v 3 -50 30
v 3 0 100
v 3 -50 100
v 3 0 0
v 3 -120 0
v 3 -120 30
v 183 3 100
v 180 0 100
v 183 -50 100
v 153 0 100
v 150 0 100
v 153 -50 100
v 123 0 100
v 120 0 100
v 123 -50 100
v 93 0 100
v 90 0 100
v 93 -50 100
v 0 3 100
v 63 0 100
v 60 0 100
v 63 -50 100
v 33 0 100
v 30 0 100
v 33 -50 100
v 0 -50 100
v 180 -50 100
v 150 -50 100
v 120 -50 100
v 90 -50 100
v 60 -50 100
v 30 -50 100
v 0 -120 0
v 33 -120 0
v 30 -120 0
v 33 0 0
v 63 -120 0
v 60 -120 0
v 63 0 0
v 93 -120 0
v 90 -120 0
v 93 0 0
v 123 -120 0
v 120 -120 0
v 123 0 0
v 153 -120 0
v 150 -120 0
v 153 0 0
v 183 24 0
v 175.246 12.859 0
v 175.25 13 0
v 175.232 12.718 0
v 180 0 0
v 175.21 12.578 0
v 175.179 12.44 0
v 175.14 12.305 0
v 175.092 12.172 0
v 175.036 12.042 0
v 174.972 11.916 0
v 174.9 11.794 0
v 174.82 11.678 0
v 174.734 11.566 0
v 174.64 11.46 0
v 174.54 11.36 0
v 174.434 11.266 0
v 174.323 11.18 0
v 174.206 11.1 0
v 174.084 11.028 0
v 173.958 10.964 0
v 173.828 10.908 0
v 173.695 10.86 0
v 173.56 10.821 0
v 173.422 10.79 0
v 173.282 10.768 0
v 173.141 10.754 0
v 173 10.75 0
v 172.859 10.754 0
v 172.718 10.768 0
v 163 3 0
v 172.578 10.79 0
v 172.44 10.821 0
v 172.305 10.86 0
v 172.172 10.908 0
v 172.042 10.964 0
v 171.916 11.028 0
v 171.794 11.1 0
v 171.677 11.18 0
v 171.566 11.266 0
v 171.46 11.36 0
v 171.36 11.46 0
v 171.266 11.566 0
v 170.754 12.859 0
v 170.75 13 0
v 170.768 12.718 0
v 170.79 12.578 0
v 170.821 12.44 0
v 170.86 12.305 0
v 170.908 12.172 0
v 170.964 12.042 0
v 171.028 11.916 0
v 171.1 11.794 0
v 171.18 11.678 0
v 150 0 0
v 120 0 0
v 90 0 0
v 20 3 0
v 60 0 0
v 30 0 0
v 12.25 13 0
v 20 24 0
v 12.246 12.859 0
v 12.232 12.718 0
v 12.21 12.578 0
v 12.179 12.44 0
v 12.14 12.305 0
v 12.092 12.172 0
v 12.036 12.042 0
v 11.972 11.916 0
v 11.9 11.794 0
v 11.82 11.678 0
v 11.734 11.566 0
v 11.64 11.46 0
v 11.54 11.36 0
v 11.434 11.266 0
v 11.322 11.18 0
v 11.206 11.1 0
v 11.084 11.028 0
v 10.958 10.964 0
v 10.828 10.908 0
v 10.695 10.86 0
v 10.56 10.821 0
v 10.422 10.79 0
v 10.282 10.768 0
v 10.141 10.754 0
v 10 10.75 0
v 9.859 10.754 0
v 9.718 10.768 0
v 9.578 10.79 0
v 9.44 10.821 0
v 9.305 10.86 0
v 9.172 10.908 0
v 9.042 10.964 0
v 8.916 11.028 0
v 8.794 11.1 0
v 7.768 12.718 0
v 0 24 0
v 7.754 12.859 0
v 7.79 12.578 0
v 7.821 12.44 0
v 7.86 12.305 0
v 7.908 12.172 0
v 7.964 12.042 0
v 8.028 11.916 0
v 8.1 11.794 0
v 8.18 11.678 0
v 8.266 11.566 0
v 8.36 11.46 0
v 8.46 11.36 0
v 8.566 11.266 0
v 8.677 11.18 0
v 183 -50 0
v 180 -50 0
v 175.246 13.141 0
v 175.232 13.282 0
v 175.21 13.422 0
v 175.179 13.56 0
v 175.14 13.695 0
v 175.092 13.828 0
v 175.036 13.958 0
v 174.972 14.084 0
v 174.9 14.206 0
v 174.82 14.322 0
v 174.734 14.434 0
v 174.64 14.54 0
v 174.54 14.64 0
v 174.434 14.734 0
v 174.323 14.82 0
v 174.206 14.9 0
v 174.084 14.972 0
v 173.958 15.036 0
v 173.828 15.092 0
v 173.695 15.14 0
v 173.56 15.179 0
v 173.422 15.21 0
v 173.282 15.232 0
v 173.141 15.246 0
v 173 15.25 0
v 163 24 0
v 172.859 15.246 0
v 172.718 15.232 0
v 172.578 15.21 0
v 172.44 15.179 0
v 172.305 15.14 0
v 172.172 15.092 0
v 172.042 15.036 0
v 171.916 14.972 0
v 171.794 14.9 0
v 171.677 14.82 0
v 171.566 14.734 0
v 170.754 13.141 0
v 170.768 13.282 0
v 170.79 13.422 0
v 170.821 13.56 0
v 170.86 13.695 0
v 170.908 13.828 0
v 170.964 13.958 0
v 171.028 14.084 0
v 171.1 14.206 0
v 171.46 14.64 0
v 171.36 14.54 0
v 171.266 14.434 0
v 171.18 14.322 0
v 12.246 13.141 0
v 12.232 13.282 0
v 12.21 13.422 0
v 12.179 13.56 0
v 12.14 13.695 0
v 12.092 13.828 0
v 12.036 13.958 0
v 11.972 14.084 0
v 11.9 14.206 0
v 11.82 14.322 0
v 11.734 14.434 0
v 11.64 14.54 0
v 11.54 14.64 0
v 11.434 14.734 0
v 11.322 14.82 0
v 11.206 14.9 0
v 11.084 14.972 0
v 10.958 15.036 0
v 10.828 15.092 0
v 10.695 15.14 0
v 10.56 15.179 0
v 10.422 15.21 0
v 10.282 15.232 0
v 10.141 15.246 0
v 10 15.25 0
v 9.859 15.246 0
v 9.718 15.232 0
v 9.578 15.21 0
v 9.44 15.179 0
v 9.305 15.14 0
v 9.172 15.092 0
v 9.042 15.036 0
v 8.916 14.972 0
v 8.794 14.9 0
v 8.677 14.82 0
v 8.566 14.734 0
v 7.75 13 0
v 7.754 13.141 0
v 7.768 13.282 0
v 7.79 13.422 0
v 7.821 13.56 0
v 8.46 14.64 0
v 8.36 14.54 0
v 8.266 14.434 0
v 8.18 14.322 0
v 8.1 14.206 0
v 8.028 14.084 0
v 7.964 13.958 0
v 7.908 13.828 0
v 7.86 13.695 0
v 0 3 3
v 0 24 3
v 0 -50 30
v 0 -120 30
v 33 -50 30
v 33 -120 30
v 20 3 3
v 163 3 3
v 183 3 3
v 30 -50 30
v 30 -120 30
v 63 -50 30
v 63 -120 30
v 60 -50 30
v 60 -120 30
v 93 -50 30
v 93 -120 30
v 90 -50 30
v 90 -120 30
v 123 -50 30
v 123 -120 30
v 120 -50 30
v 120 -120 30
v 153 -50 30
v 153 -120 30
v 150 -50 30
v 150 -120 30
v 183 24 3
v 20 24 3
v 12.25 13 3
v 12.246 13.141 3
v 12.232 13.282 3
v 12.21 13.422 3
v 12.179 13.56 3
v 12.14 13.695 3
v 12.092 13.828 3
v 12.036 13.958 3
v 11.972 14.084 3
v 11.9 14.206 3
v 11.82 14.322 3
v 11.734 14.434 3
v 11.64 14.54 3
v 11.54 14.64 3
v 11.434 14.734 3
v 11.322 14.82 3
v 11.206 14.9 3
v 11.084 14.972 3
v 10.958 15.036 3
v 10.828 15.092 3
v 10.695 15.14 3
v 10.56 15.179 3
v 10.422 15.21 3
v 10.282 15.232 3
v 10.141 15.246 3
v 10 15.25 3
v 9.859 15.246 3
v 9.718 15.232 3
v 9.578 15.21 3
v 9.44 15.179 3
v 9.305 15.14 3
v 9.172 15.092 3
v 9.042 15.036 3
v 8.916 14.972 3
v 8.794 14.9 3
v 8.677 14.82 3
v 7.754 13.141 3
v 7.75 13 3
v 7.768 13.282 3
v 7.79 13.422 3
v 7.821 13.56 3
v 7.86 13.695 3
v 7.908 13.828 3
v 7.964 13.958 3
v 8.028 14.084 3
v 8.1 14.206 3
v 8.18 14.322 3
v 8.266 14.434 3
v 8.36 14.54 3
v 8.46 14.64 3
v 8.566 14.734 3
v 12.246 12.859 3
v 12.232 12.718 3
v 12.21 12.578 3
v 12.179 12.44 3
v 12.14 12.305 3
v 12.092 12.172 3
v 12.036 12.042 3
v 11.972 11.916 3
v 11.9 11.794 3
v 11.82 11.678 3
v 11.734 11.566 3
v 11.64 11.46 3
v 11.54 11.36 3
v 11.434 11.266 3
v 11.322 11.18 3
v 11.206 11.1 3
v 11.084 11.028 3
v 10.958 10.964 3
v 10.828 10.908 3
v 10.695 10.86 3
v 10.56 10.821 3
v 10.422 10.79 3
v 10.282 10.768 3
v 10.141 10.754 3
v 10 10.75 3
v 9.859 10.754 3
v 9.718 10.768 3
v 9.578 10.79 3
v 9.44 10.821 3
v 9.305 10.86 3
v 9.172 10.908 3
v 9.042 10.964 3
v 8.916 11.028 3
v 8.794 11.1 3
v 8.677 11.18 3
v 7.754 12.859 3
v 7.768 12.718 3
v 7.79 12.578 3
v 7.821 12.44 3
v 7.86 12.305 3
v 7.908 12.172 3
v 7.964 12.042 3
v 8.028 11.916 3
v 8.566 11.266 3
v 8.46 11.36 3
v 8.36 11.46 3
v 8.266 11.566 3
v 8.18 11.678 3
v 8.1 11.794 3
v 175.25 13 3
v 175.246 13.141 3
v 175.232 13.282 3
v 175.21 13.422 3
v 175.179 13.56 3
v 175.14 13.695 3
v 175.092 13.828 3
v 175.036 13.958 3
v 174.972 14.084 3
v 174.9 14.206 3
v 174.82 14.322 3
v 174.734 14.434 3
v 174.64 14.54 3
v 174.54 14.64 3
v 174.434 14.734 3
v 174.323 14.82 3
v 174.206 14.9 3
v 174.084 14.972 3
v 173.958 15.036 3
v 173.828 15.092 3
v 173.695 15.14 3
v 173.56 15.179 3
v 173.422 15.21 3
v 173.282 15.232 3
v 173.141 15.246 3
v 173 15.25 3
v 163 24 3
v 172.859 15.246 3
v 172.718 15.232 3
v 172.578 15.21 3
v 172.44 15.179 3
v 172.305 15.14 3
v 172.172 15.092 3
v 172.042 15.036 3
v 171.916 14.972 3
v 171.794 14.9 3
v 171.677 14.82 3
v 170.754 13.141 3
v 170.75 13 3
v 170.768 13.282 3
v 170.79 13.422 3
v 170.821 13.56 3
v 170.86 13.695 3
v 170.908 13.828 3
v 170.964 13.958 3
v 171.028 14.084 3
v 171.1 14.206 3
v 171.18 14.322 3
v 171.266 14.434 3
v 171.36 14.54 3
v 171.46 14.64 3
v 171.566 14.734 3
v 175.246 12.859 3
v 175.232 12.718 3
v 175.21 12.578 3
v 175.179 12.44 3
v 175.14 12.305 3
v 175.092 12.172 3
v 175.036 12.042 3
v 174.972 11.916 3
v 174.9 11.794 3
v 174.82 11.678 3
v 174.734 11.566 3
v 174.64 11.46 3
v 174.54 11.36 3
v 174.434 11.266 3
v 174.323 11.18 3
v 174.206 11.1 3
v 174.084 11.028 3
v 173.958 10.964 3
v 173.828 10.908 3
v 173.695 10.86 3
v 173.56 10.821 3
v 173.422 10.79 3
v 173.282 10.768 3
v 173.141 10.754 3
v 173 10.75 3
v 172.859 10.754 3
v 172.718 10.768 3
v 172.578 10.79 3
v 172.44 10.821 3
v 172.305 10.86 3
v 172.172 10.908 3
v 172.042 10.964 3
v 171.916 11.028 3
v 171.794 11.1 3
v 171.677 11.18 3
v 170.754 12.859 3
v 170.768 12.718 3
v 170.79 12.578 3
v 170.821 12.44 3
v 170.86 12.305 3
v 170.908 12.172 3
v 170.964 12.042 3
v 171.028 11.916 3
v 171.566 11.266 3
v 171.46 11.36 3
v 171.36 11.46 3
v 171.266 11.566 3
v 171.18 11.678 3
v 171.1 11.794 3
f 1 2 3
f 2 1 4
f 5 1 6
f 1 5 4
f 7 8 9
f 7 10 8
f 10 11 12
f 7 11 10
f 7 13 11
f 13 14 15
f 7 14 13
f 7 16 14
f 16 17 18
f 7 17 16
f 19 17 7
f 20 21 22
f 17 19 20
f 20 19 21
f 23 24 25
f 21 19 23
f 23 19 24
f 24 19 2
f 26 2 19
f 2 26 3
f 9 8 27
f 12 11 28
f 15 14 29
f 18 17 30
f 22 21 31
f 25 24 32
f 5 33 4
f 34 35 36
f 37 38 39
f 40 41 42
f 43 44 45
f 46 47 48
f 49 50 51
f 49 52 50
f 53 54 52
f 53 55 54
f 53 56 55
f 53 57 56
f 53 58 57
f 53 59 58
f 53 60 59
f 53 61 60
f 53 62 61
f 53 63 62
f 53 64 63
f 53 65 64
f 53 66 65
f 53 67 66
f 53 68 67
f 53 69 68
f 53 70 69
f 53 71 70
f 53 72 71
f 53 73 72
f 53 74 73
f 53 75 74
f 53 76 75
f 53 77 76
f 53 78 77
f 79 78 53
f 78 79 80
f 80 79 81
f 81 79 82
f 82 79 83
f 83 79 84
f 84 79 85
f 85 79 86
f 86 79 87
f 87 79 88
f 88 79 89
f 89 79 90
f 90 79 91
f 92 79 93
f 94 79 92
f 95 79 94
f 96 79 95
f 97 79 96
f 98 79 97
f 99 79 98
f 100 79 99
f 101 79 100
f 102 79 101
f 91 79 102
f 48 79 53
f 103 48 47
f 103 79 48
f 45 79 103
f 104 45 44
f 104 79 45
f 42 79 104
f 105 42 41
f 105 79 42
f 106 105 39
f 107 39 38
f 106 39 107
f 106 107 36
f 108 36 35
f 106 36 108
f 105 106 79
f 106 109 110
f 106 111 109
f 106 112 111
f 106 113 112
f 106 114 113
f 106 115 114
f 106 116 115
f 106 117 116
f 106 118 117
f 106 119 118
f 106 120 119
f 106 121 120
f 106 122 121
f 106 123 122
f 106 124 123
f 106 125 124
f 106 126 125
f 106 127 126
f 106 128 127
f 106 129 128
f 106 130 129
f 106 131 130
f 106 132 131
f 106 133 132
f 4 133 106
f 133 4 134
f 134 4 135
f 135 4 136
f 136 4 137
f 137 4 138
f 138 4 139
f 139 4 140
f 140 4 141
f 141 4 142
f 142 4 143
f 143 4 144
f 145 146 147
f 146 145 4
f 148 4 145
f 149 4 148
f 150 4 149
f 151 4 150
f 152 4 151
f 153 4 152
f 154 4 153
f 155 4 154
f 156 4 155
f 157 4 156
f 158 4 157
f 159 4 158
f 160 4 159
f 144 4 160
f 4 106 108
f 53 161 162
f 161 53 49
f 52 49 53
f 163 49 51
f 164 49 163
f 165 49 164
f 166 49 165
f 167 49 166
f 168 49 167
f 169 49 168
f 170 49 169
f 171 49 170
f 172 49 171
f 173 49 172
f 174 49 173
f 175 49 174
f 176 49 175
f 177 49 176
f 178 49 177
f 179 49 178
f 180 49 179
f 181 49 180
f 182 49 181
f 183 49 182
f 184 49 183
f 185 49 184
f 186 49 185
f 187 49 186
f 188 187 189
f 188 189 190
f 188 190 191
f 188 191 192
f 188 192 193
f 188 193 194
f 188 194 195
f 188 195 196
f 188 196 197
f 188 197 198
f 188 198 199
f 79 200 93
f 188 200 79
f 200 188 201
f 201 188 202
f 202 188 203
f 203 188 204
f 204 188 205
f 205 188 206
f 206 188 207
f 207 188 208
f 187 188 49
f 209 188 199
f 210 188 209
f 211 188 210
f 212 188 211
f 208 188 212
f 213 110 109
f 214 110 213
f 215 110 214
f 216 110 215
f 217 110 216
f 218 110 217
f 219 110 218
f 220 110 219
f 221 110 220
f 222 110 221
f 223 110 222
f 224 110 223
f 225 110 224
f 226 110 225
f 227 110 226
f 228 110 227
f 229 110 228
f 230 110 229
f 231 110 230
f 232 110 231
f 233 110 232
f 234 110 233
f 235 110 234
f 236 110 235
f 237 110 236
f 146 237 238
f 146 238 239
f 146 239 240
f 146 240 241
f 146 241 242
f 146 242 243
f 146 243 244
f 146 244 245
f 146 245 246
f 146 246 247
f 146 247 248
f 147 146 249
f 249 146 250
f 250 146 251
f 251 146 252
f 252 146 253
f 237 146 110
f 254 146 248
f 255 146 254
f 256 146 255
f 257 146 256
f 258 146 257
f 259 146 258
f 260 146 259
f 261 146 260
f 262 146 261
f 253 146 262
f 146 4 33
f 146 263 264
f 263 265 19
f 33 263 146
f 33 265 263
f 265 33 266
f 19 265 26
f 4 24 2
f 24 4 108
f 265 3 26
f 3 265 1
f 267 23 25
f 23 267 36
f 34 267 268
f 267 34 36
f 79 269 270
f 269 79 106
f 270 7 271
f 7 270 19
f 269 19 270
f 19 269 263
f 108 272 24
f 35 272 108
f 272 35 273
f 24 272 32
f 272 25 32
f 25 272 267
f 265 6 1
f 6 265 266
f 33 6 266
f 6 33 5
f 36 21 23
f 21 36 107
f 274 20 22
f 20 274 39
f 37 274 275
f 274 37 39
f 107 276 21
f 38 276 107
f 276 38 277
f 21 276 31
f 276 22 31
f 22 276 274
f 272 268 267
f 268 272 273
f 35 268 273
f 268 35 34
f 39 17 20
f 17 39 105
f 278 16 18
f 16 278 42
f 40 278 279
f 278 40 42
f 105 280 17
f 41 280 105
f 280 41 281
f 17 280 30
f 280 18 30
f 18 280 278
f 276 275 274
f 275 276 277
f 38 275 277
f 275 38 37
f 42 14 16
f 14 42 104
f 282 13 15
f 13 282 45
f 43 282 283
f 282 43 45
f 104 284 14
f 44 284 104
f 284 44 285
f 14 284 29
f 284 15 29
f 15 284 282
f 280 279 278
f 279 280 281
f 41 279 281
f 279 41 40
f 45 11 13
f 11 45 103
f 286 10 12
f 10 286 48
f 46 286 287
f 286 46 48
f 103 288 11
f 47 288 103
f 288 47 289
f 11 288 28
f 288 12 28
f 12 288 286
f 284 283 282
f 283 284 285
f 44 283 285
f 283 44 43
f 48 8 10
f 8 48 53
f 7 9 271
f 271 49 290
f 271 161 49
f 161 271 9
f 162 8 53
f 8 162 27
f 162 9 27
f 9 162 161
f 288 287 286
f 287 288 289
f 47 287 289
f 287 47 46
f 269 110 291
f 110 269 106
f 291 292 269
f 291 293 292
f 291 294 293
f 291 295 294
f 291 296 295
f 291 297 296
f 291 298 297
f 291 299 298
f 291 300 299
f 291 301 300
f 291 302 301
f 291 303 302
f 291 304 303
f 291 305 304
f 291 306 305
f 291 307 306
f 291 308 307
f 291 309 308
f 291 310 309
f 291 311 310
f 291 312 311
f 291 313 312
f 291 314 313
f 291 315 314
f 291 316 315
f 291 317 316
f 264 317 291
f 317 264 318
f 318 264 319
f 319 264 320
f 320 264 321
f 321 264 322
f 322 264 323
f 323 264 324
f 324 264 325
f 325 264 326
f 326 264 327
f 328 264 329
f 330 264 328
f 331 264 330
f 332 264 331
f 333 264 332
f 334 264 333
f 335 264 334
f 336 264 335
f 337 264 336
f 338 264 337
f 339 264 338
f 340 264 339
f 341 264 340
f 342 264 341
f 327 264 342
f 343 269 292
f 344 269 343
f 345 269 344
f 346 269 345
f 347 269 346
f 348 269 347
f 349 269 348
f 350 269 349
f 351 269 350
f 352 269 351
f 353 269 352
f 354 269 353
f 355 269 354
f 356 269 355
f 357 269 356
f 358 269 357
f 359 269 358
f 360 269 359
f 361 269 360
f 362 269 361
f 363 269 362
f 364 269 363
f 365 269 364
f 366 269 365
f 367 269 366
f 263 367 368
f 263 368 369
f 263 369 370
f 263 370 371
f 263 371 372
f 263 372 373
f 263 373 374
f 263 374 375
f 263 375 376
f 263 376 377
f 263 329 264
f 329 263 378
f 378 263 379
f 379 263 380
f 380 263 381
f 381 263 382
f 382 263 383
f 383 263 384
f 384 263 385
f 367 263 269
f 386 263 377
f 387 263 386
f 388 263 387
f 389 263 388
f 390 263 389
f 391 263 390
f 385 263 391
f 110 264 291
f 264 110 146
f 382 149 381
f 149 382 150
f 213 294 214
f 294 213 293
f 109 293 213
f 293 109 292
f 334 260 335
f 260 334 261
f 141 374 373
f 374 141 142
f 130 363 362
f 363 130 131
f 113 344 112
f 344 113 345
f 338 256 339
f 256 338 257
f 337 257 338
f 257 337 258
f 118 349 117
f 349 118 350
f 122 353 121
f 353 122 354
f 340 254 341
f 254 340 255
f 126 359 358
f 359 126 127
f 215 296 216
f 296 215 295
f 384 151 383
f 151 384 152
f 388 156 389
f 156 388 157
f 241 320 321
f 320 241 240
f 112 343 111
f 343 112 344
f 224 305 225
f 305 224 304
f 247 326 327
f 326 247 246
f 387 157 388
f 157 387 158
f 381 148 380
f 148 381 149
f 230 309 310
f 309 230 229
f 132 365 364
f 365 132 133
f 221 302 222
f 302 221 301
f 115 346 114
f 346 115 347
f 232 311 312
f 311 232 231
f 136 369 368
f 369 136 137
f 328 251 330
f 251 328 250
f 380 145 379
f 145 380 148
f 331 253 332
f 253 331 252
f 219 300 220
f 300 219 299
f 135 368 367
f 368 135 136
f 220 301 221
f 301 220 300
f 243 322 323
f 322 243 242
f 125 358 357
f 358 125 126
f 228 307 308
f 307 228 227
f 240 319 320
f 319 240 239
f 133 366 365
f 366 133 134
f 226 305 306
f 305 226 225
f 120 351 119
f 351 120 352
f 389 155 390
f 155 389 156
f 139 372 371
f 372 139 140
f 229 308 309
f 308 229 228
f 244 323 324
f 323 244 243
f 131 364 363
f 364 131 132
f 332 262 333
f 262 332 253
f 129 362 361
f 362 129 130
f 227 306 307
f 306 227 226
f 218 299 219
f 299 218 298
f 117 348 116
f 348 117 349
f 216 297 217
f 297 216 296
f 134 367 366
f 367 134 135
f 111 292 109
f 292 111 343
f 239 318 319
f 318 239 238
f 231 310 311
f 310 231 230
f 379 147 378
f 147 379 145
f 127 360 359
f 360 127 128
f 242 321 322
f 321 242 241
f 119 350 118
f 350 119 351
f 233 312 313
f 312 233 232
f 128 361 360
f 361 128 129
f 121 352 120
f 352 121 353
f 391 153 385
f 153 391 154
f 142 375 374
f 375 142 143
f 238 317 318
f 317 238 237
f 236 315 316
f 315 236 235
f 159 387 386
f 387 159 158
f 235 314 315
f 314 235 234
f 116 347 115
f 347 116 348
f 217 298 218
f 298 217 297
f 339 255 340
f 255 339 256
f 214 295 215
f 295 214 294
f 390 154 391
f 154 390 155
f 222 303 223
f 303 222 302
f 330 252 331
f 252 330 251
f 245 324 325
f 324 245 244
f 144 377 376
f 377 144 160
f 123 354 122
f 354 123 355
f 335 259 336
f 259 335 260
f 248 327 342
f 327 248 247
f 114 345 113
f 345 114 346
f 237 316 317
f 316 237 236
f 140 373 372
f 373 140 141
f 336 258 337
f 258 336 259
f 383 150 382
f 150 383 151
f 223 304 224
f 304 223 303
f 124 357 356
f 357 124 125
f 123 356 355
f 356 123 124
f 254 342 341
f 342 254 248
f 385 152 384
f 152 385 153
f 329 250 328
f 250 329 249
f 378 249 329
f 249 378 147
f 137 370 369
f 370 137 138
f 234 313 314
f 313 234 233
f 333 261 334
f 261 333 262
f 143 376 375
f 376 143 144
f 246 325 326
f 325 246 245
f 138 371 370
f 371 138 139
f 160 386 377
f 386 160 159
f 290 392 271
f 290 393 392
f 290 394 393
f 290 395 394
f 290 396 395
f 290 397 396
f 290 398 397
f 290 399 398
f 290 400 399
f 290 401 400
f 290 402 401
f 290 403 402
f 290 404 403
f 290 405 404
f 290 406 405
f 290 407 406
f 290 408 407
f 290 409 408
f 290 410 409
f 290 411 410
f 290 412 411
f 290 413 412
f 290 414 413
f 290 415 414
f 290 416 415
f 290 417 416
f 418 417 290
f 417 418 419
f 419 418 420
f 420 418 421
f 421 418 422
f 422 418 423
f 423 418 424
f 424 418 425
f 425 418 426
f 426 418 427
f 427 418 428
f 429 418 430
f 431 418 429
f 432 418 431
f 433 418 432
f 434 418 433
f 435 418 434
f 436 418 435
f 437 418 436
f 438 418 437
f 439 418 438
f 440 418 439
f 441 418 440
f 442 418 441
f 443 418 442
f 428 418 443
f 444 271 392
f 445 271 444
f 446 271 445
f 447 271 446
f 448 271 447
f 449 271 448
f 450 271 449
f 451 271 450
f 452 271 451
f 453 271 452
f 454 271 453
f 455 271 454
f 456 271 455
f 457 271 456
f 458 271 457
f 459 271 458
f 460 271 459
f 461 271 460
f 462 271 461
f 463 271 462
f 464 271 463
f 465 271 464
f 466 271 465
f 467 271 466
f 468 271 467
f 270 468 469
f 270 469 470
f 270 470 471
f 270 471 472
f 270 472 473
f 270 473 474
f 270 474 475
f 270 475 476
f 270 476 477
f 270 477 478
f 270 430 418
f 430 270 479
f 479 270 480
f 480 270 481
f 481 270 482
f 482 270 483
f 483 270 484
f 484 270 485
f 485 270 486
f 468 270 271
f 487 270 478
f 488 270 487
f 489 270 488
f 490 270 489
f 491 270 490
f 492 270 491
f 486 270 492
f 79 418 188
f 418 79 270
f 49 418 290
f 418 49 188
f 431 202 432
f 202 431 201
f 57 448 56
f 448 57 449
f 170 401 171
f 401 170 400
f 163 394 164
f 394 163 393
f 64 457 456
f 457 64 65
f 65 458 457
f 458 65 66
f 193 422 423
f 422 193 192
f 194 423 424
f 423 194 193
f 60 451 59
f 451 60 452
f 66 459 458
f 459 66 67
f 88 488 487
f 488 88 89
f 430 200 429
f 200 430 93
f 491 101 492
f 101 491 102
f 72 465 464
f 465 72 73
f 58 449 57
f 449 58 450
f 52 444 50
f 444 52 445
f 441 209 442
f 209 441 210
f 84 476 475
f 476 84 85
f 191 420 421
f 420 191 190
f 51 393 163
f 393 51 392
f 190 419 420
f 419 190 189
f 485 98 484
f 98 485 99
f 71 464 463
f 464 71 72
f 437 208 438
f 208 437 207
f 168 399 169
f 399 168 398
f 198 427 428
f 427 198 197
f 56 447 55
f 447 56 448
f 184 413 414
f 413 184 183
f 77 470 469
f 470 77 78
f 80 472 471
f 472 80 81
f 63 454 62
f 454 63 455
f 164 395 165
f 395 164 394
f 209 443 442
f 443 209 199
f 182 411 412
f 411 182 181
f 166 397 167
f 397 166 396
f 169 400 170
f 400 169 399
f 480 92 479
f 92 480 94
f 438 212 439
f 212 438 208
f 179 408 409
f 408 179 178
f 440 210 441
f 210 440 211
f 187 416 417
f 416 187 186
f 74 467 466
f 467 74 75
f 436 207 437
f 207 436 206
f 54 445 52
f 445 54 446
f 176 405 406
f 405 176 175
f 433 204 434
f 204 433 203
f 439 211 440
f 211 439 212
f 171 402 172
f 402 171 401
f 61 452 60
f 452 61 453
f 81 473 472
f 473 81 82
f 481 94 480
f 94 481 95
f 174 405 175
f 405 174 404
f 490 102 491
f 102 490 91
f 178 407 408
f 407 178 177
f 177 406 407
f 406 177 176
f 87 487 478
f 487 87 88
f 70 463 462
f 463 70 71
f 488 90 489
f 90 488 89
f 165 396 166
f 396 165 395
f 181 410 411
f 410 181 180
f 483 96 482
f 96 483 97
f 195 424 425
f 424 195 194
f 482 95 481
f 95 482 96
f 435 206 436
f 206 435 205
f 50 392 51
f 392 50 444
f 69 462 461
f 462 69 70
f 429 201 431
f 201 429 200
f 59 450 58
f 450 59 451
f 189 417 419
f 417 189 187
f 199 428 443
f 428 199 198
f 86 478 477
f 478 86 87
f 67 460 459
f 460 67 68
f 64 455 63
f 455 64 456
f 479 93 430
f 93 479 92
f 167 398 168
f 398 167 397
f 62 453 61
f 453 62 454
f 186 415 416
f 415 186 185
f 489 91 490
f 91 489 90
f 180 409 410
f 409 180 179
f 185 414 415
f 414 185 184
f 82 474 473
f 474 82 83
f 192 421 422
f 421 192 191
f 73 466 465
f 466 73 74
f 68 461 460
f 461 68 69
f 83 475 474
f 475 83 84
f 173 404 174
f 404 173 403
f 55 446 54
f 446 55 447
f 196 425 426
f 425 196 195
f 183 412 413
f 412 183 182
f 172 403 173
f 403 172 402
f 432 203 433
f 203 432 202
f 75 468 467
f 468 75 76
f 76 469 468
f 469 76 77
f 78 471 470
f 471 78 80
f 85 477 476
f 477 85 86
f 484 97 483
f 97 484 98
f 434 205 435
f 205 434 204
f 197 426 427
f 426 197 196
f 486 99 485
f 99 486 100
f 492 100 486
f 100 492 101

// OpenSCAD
$fn = 100;
delta_x = 30;
wall_thickness = 3;
depth = 100;
height = 50;
number_of_trays = 6;
extra_label_height = 70;
label_width = 30;
union(){
	for ( i = [0 : number_of_trays-1] ) {
		union(){
			translate([i*delta_x, -height, 0])cube([wall_thickness, height, depth]);
			translate([i*delta_x, 0, 0])cube([delta_x+wall_thickness, wall_thickness, depth]);
			translate([(i+1)*delta_x, -height, 0])cube([wall_thickness, height, depth]);
			translate([i*delta_x, -height-extra_label_height, 0])cube([wall_thickness, height+extra_label_height, label_width]);
		}
	}
	screw_tab_delta_x = number_of_trays * delta_x + wall_thickness;
	difference(){
		cube([20, 24, wall_thickness]);
		translate([10, 10 + wall_thickness, wall_thickness/2])cylinder(d=4.5, h=wall_thickness, center=true);
	}
	translate([screw_tab_delta_x-20, 0, 0])difference(){
		cube([20, 24, wall_thickness]);
		translate([10, 10 + wall_thickness, wall_thickness/2])cylinder(d=4.5, h=wall_thickness, center=true);
	}
}
